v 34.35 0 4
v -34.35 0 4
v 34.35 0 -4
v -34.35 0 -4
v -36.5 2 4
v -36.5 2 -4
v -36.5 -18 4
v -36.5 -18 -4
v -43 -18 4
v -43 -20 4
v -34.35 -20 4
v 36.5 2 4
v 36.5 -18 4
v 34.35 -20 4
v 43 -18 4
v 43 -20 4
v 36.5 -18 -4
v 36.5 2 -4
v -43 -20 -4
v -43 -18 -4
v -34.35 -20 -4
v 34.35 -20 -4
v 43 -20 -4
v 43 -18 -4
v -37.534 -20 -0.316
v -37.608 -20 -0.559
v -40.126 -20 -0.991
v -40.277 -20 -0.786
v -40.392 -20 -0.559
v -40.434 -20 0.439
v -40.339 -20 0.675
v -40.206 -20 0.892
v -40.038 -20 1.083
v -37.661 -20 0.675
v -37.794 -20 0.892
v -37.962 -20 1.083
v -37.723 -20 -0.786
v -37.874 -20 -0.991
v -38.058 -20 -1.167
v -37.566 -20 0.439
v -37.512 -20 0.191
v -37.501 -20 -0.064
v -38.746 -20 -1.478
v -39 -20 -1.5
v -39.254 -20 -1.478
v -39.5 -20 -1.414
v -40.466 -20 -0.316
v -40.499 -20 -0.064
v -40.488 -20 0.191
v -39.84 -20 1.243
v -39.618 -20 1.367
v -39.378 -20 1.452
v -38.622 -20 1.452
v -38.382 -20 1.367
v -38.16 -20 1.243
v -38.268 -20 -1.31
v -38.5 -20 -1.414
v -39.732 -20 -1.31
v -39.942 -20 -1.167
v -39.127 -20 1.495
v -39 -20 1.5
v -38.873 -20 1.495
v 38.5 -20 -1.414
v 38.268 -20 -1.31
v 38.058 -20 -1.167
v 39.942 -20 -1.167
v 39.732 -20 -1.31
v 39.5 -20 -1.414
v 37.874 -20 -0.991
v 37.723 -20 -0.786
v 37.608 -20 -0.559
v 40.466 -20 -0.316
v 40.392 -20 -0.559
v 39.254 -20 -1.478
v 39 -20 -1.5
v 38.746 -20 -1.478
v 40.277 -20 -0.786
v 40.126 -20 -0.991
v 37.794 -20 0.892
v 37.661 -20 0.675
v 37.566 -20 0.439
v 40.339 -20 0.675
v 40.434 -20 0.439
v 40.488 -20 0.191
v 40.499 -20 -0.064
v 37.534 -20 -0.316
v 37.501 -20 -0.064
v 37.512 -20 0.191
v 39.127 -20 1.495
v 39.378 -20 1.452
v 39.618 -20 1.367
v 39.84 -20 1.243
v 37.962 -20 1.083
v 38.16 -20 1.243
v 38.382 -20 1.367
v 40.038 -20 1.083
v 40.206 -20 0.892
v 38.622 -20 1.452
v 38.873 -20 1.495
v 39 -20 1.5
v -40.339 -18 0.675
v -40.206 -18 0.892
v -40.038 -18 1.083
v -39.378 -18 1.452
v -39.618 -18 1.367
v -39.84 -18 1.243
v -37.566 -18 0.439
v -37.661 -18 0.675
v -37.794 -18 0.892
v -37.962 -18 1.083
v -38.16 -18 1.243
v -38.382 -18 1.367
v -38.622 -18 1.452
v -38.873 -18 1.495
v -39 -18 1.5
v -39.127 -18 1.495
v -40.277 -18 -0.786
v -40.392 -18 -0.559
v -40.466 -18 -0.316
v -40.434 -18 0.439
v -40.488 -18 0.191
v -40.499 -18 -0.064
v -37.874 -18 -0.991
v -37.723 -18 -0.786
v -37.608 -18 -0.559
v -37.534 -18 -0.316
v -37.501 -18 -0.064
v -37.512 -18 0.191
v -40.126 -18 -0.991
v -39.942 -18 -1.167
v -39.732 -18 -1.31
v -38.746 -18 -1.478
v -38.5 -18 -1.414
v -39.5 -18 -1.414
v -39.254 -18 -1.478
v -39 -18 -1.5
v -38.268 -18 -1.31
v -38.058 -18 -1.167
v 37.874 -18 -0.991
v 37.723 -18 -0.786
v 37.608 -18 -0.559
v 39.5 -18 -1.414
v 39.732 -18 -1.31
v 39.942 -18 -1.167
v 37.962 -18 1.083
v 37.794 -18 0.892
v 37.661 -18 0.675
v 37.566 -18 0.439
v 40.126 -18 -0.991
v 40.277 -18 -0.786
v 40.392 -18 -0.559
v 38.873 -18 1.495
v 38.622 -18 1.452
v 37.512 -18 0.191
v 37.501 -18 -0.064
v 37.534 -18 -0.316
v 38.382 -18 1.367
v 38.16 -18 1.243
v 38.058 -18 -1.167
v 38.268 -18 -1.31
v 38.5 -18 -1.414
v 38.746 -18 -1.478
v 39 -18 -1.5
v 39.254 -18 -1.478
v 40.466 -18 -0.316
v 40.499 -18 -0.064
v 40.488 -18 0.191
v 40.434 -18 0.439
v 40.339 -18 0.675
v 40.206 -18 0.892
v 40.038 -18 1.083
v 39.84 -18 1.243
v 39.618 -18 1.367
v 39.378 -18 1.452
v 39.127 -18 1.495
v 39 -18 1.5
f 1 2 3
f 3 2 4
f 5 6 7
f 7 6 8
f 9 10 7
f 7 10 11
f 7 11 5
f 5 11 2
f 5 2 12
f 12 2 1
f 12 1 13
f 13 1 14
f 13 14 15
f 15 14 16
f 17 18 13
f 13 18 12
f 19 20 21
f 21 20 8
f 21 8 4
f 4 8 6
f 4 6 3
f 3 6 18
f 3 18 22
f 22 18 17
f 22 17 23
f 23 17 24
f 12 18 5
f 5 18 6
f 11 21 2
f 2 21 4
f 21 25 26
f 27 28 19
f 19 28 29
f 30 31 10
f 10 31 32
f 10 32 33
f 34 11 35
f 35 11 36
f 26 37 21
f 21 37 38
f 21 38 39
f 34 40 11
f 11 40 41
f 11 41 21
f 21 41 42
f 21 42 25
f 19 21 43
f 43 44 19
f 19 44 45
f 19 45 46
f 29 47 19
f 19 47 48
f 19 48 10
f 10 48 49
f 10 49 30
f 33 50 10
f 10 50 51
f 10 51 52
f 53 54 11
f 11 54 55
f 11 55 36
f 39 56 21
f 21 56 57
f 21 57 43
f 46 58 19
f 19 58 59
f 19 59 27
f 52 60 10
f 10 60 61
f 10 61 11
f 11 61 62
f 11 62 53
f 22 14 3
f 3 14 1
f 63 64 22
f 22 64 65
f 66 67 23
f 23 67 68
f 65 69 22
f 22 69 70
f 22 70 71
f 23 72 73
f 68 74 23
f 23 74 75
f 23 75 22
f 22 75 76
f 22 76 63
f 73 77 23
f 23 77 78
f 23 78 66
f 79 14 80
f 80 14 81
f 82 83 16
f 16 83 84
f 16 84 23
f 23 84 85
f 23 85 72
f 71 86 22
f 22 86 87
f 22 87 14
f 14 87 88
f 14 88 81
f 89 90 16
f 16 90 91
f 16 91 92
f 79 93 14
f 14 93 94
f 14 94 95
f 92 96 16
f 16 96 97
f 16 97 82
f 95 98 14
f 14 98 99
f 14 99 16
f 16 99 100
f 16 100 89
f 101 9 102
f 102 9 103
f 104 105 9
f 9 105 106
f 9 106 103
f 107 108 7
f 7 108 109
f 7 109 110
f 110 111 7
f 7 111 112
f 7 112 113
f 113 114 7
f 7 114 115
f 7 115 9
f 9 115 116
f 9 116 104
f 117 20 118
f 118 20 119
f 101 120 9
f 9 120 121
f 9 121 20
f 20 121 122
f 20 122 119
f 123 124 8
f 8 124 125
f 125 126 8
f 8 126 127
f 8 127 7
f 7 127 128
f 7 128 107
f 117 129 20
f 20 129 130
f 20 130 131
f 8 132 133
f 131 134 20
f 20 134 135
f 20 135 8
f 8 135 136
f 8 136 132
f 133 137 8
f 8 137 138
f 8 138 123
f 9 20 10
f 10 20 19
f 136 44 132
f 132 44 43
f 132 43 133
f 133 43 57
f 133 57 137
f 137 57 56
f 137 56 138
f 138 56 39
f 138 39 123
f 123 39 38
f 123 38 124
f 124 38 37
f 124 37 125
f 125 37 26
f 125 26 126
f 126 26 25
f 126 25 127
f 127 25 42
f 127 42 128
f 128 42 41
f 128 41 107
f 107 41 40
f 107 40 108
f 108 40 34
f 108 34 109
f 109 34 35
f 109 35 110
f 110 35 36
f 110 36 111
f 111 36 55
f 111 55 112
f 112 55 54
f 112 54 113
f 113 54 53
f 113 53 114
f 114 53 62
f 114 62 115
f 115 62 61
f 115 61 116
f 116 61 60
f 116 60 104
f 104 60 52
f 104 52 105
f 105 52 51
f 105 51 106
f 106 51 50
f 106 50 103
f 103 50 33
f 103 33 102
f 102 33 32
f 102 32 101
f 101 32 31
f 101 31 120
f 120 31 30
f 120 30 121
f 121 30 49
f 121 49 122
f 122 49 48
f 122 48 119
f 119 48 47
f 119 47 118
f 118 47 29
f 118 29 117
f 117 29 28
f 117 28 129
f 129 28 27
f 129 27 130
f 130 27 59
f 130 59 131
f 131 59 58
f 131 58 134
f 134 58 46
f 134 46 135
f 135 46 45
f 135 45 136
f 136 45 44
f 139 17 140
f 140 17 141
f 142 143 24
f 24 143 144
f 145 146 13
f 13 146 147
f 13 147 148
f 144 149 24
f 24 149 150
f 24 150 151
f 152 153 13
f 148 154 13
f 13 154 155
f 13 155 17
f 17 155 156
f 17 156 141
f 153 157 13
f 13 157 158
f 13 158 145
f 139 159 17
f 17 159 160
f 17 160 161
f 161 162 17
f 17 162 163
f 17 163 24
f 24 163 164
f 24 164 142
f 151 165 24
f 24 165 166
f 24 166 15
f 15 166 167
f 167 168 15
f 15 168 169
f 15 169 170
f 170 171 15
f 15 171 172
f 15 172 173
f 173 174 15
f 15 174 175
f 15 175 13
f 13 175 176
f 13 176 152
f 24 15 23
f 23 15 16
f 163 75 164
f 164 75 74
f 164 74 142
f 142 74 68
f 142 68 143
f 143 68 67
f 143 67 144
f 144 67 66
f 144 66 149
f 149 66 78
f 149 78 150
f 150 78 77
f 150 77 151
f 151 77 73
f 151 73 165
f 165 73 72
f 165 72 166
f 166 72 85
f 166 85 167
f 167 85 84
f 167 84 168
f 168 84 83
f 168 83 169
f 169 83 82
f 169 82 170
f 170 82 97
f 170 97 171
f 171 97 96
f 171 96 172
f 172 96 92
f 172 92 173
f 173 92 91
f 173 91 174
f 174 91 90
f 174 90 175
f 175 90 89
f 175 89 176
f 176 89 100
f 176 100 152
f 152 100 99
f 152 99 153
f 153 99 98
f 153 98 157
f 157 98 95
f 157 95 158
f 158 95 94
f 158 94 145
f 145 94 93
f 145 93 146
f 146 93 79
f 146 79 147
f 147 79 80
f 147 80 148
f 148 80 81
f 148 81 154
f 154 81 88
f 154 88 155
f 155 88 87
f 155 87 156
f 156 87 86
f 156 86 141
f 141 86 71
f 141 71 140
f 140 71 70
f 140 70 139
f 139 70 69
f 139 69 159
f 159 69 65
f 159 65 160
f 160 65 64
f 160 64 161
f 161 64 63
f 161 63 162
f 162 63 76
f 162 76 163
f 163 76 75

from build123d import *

# Parameters (mm, degrees)
SKETCH_1_W      = 73
SKETCH_1_H      = 8
EXTRUDE_1_DEPTH = 2
SKETCH_1_15_W   = 2.15
SKETCH_1_15_H   = 8
EXTRUDE_2_DEPTH = 20
EXTRUDE_START   = -20
SKETCH_1_16_W   = 6.5
SKETCH_1_16_H   = 8
SKETCH_1_16_R   = 1.5
EXTRUDE_3_DEPTH = 2


with BuildPart() as part:
    # 草图1 → 凸台-拉伸1 (new body)
    with BuildSketch(Plane(origin=(0, 0, 0), x_dir=(1, 0, 0), z_dir=(0, 1, 0))):
        Rectangle(SKETCH_1_W, SKETCH_1_H)
    extrude(amount=EXTRUDE_1_DEPTH)

    # 草图1<15> → 凸台-拉伸2 (add)
    with BuildSketch(Plane(origin=(0, 0, 0), x_dir=(1, 0, 0), z_dir=(0, 1, 0))):
        with Locations((-35.425, 0)):
            Rectangle(SKETCH_1_15_W, SKETCH_1_15_H)
        with Locations((35.425, 0)):
            Rectangle(SKETCH_1_15_W, SKETCH_1_15_H)
    extrude(amount=-EXTRUDE_2_DEPTH)

    # 草图1<16> → 凸台-拉伸3 (add)
    # profile 1 of 2: a face of its own
    with BuildSketch(Plane(origin=(0, 0, 0), x_dir=(1, 0, 0), z_dir=(0, 1, 0)).offset(EXTRUDE_START)):
        with Locations((-39.75, 0)):
            Rectangle(SKETCH_1_16_W, SKETCH_1_16_H)
        with Locations(Location((-39, 0, 0), (0, 0, 270))):
            Circle(SKETCH_1_16_R, mode=Mode.SUBTRACT)
    # profile 2 of 2: a face of its own
    with BuildSketch(Plane(origin=(0, 0, 0), x_dir=(1, 0, 0), z_dir=(0, 1, 0)).offset(EXTRUDE_START)):
        with Locations((39.75, 0)):
            Rectangle(SKETCH_1_16_W, SKETCH_1_16_H)
        with Locations(Location((39, 0, 0), (0, 0, 270))):
            Circle(SKETCH_1_16_R, mode=Mode.SUBTRACT)
    extrude(amount=EXTRUDE_3_DEPTH)


solid = part.part
